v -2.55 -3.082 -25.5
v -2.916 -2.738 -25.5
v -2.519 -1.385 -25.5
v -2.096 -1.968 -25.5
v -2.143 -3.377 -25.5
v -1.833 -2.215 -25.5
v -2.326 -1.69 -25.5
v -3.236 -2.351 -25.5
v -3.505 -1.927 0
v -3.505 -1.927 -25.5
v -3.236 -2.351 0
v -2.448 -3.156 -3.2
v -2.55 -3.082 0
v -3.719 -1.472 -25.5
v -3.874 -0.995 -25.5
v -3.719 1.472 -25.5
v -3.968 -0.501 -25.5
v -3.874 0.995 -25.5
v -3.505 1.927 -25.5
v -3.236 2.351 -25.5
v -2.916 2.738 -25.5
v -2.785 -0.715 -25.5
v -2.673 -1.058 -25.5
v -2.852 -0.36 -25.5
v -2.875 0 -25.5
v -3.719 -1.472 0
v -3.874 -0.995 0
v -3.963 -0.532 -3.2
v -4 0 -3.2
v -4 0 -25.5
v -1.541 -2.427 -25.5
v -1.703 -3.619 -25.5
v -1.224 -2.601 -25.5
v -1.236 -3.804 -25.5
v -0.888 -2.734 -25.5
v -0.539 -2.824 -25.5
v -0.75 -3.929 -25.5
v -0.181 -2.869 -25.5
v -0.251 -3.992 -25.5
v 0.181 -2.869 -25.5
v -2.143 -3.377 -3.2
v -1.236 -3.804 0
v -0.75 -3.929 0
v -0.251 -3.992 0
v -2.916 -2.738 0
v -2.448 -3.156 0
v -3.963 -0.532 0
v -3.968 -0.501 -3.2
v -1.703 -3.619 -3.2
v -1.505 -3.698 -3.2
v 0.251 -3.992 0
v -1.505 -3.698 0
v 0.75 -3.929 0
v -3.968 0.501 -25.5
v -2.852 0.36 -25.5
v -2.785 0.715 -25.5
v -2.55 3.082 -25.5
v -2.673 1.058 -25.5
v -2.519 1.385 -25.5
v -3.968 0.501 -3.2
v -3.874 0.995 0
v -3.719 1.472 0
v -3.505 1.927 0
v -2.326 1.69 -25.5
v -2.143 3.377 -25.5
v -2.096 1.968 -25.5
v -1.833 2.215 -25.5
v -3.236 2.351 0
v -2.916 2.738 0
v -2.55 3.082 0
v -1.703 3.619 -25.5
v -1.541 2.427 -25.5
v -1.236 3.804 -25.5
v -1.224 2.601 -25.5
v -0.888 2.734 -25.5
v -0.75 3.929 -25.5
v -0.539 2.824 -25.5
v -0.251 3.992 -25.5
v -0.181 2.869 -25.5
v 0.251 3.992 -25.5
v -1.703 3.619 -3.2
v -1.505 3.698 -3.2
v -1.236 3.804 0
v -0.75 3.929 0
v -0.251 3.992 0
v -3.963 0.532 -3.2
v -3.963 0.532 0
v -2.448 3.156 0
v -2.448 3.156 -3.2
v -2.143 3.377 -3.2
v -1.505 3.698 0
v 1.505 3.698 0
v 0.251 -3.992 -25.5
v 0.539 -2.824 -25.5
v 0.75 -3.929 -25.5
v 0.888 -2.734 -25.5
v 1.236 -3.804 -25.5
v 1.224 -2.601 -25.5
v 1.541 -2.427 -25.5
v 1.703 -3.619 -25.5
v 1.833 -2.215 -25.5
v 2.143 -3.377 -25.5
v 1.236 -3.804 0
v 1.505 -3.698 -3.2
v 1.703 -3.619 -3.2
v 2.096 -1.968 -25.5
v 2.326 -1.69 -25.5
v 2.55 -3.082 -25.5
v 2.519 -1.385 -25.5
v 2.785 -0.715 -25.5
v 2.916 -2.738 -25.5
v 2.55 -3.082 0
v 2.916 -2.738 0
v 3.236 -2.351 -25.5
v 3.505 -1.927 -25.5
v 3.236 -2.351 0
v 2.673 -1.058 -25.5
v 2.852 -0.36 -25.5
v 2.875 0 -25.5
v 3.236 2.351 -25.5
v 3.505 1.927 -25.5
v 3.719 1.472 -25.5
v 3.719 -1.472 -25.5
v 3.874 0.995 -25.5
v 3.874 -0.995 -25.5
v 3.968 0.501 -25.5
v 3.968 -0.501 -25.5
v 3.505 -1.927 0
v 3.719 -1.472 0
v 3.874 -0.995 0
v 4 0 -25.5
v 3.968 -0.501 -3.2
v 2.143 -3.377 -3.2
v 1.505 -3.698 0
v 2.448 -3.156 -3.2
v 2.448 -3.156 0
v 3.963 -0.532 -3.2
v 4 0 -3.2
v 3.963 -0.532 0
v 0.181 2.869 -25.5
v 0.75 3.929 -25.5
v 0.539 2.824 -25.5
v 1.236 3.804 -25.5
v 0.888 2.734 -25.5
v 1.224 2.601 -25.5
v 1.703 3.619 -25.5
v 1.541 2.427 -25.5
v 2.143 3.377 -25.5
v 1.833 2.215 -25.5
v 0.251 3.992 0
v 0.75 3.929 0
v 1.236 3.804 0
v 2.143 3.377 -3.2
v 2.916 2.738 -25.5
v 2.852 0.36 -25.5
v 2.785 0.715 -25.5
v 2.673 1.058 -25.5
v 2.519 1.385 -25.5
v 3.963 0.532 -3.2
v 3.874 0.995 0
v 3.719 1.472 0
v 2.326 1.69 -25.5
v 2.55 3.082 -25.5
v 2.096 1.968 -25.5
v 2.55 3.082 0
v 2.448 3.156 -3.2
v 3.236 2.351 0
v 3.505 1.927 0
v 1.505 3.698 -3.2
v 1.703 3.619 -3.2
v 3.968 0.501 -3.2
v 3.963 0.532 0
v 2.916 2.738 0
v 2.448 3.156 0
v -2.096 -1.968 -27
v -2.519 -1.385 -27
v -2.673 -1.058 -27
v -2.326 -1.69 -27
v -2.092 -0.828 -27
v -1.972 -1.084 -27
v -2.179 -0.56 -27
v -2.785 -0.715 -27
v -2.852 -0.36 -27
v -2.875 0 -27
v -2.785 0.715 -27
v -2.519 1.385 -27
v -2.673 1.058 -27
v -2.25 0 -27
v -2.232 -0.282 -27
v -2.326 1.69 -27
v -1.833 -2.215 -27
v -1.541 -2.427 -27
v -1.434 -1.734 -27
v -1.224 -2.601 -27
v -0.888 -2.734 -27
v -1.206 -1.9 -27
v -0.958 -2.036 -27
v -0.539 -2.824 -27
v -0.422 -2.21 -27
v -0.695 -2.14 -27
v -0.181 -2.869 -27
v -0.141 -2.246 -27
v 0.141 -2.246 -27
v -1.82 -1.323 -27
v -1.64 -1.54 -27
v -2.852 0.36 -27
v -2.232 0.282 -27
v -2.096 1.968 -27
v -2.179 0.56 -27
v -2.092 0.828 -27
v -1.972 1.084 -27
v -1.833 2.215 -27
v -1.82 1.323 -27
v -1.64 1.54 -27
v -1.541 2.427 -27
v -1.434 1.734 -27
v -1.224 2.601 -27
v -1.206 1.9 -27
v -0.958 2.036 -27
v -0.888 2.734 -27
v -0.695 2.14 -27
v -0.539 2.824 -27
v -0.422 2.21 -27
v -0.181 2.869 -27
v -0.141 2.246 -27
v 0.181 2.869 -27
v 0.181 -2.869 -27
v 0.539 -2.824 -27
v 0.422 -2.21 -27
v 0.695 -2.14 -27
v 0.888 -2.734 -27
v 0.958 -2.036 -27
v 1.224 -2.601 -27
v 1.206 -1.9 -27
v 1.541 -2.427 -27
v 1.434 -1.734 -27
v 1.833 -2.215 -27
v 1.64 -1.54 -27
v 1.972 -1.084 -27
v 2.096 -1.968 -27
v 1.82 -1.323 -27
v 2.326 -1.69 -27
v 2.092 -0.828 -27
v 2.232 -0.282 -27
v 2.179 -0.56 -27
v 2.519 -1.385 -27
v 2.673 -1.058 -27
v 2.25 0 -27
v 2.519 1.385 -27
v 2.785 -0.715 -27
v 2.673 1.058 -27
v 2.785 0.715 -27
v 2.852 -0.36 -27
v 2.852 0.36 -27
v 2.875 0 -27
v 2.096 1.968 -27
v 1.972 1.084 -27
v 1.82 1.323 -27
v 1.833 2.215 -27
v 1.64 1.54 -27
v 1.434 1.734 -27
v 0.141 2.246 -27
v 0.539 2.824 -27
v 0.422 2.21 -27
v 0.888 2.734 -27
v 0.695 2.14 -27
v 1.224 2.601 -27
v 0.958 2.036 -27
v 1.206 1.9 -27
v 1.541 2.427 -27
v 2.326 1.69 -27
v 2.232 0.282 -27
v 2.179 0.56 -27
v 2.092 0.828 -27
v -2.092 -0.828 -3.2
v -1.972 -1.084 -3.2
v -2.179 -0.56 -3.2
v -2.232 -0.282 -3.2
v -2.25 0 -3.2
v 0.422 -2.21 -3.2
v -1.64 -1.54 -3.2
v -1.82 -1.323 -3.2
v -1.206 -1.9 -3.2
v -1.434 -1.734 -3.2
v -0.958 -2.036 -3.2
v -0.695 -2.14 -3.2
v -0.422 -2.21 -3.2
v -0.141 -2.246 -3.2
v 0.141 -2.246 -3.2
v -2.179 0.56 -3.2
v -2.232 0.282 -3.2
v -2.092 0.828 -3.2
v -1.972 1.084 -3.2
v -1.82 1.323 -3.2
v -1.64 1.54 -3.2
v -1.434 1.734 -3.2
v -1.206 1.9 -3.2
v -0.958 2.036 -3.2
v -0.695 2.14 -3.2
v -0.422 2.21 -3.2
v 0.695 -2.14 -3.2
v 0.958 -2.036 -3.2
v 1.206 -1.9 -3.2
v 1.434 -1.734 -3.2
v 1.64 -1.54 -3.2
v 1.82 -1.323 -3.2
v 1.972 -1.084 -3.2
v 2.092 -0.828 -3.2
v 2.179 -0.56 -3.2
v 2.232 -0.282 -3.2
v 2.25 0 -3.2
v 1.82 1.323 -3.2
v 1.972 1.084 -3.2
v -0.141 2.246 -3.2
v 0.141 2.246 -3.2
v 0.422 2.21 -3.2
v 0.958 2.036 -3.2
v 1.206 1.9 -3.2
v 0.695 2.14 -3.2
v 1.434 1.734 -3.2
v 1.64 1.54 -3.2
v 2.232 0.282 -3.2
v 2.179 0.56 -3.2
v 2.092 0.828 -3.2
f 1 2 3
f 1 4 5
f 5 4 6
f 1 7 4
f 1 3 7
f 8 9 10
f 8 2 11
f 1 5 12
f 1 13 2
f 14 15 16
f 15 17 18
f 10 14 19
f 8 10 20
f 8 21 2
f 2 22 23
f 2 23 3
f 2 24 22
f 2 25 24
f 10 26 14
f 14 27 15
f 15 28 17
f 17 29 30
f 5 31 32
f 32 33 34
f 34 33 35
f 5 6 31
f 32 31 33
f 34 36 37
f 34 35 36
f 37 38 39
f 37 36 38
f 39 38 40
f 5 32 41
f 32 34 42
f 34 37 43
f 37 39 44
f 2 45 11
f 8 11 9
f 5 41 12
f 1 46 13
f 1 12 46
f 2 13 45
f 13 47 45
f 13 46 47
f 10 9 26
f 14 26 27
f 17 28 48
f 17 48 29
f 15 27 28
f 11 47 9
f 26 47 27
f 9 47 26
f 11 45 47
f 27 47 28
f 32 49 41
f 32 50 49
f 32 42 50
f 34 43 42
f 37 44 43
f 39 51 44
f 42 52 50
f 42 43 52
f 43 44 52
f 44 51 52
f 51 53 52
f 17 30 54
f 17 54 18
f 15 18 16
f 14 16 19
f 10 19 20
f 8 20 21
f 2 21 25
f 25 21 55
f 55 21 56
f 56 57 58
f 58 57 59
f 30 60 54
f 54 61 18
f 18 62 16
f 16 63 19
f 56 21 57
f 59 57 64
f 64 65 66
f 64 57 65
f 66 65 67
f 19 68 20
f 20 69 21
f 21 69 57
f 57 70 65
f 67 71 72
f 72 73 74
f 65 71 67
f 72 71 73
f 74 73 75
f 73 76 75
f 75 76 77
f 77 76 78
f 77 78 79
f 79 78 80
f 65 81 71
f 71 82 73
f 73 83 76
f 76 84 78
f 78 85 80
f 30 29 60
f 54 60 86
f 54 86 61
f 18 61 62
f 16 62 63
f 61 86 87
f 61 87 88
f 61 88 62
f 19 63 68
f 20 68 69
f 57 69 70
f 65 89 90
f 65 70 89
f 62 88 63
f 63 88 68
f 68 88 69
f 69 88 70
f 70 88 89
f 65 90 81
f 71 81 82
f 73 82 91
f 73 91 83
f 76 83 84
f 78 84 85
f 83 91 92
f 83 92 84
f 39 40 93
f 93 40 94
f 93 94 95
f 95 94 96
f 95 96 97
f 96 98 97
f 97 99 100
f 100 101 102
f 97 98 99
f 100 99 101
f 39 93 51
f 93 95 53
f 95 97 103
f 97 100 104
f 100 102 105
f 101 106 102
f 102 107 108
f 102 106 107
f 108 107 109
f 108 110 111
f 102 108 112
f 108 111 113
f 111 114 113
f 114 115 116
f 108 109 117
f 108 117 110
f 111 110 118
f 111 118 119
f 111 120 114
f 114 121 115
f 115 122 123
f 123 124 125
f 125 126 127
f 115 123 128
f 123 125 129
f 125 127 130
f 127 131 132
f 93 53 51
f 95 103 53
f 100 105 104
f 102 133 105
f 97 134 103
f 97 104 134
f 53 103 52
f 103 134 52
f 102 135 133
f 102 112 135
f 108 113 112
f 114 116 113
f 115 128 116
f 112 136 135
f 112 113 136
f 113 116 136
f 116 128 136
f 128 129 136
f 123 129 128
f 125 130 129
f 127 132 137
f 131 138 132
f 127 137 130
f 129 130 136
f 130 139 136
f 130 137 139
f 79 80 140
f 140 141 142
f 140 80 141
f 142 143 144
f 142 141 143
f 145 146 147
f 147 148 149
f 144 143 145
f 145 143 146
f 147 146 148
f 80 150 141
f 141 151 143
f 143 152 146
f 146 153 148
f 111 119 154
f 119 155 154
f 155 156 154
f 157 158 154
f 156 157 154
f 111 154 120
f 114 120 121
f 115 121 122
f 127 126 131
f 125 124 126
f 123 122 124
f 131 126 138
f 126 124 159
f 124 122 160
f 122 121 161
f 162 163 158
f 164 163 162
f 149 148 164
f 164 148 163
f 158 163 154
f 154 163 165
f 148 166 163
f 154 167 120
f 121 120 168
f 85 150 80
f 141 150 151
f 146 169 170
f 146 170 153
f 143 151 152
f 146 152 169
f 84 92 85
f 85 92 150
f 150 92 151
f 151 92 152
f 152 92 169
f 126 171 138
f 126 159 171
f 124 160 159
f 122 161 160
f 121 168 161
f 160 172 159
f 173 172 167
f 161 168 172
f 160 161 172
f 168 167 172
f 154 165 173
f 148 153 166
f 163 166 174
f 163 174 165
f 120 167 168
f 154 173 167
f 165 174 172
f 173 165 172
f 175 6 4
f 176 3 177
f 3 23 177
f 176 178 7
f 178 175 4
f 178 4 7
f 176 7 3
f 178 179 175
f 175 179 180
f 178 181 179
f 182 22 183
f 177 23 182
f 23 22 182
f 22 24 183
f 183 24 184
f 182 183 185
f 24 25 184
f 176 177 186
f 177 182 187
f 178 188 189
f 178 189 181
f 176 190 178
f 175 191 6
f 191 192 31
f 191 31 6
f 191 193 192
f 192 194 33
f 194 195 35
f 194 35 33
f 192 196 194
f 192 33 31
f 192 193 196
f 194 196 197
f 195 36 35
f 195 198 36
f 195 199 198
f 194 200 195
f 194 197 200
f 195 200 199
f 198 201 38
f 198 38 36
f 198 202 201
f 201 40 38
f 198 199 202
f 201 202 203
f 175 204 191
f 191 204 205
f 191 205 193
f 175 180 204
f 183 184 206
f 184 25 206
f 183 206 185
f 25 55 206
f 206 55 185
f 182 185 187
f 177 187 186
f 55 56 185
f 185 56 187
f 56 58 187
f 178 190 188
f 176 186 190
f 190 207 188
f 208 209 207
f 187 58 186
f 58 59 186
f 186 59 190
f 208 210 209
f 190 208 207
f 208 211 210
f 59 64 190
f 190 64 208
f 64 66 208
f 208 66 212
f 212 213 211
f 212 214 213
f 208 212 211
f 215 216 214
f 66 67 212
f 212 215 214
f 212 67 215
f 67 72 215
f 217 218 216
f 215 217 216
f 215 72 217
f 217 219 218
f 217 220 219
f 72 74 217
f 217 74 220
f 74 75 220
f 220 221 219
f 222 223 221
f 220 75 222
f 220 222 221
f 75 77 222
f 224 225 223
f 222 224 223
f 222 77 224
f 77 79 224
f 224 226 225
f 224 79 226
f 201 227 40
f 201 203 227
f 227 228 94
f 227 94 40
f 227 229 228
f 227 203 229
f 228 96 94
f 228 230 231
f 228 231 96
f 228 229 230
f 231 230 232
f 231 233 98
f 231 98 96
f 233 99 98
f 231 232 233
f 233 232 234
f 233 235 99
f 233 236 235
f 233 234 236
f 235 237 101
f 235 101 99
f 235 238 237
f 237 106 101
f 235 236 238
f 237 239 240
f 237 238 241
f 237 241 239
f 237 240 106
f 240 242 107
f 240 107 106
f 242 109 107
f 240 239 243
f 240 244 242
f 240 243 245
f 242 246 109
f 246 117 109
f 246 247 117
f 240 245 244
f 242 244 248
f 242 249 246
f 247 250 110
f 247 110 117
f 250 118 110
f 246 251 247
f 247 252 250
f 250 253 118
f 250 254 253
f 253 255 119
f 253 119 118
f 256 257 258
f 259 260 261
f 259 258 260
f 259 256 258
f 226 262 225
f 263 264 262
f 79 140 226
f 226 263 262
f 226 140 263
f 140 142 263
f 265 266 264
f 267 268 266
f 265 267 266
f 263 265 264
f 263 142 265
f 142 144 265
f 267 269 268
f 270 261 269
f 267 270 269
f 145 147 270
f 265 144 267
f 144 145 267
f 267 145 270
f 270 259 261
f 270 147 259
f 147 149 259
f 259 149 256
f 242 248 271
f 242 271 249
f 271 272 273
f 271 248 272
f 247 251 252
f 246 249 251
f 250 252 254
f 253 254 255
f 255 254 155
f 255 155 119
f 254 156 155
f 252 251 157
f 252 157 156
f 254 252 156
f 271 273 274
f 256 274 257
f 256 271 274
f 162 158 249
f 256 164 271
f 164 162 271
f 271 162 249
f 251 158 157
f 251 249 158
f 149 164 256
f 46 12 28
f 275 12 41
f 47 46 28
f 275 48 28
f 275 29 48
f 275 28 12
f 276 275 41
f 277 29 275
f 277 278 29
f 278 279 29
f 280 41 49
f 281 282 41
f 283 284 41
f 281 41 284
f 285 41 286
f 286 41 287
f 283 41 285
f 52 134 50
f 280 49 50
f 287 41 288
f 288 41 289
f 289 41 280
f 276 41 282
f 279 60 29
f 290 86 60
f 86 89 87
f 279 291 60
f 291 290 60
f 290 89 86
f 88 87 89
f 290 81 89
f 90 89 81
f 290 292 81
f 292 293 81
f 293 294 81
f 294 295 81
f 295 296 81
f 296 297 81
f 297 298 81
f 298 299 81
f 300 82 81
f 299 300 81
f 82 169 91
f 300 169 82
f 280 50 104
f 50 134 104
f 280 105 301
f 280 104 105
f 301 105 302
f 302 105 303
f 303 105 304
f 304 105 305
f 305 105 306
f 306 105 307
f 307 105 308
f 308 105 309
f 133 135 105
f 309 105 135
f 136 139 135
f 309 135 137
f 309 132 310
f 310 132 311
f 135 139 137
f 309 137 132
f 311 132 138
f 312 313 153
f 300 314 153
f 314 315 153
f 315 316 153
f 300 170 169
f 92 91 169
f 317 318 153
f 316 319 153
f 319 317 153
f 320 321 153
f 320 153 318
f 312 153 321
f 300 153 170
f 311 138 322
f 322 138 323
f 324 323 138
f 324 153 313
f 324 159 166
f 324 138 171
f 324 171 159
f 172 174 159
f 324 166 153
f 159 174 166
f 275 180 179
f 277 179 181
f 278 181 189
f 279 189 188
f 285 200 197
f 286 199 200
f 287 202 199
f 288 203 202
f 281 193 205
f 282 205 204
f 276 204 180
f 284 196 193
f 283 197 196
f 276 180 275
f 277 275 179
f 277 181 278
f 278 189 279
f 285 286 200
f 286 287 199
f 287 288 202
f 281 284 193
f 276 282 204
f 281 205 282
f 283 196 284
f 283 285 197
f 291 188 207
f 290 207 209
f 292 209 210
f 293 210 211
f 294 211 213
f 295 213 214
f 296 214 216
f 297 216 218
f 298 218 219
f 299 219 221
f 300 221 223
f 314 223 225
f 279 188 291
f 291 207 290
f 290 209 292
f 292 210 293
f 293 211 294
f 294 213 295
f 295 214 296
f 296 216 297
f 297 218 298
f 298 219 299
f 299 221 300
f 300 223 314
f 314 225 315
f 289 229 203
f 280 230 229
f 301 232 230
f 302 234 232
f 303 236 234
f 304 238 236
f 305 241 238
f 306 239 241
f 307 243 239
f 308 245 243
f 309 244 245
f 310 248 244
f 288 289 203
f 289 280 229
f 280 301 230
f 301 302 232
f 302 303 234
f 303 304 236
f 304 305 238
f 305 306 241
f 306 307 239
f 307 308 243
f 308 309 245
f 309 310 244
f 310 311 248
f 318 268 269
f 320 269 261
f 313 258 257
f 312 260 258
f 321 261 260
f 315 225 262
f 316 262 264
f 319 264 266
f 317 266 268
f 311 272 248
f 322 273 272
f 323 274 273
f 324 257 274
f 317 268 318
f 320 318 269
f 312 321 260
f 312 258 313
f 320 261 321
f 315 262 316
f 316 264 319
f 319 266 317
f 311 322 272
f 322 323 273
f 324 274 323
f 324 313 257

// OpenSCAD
$fn = 50;

difference() {
	union() {
		translate(v = [0, 0, -25.5]) {
			cylinder(h = 25.5, r = 4.0);
		}
		#translate(v = [0, 0, -27.0]) {
			cylinder(h = 27, r = 2.875);
		}
	}
	union() {
		translate(v = [0, 0, 0]) {
			rotate(a = [0, 0, 0]) {
				difference() {
					union() {
						translate(v = [0, 0, -3.2]) {
							linear_extrude(height = 3.2) {
								polygon(points = [[4.2698, 0.0], [2.1349000000000005, 3.697755269078796], [-2.134899999999999, 3.6977552690787965], [-4.2698, 5.228996902999369e-16], [-2.134900000000002, -3.6977552690787956], [2.1348999999999974, -3.697755269078798]]);
							}
						}
					}
					union();
				}
			}
		}
		#translate(v = [0, 0, -100.0]) {
			cylinder(h = 200, r = 2.25);
		}
	}
}
